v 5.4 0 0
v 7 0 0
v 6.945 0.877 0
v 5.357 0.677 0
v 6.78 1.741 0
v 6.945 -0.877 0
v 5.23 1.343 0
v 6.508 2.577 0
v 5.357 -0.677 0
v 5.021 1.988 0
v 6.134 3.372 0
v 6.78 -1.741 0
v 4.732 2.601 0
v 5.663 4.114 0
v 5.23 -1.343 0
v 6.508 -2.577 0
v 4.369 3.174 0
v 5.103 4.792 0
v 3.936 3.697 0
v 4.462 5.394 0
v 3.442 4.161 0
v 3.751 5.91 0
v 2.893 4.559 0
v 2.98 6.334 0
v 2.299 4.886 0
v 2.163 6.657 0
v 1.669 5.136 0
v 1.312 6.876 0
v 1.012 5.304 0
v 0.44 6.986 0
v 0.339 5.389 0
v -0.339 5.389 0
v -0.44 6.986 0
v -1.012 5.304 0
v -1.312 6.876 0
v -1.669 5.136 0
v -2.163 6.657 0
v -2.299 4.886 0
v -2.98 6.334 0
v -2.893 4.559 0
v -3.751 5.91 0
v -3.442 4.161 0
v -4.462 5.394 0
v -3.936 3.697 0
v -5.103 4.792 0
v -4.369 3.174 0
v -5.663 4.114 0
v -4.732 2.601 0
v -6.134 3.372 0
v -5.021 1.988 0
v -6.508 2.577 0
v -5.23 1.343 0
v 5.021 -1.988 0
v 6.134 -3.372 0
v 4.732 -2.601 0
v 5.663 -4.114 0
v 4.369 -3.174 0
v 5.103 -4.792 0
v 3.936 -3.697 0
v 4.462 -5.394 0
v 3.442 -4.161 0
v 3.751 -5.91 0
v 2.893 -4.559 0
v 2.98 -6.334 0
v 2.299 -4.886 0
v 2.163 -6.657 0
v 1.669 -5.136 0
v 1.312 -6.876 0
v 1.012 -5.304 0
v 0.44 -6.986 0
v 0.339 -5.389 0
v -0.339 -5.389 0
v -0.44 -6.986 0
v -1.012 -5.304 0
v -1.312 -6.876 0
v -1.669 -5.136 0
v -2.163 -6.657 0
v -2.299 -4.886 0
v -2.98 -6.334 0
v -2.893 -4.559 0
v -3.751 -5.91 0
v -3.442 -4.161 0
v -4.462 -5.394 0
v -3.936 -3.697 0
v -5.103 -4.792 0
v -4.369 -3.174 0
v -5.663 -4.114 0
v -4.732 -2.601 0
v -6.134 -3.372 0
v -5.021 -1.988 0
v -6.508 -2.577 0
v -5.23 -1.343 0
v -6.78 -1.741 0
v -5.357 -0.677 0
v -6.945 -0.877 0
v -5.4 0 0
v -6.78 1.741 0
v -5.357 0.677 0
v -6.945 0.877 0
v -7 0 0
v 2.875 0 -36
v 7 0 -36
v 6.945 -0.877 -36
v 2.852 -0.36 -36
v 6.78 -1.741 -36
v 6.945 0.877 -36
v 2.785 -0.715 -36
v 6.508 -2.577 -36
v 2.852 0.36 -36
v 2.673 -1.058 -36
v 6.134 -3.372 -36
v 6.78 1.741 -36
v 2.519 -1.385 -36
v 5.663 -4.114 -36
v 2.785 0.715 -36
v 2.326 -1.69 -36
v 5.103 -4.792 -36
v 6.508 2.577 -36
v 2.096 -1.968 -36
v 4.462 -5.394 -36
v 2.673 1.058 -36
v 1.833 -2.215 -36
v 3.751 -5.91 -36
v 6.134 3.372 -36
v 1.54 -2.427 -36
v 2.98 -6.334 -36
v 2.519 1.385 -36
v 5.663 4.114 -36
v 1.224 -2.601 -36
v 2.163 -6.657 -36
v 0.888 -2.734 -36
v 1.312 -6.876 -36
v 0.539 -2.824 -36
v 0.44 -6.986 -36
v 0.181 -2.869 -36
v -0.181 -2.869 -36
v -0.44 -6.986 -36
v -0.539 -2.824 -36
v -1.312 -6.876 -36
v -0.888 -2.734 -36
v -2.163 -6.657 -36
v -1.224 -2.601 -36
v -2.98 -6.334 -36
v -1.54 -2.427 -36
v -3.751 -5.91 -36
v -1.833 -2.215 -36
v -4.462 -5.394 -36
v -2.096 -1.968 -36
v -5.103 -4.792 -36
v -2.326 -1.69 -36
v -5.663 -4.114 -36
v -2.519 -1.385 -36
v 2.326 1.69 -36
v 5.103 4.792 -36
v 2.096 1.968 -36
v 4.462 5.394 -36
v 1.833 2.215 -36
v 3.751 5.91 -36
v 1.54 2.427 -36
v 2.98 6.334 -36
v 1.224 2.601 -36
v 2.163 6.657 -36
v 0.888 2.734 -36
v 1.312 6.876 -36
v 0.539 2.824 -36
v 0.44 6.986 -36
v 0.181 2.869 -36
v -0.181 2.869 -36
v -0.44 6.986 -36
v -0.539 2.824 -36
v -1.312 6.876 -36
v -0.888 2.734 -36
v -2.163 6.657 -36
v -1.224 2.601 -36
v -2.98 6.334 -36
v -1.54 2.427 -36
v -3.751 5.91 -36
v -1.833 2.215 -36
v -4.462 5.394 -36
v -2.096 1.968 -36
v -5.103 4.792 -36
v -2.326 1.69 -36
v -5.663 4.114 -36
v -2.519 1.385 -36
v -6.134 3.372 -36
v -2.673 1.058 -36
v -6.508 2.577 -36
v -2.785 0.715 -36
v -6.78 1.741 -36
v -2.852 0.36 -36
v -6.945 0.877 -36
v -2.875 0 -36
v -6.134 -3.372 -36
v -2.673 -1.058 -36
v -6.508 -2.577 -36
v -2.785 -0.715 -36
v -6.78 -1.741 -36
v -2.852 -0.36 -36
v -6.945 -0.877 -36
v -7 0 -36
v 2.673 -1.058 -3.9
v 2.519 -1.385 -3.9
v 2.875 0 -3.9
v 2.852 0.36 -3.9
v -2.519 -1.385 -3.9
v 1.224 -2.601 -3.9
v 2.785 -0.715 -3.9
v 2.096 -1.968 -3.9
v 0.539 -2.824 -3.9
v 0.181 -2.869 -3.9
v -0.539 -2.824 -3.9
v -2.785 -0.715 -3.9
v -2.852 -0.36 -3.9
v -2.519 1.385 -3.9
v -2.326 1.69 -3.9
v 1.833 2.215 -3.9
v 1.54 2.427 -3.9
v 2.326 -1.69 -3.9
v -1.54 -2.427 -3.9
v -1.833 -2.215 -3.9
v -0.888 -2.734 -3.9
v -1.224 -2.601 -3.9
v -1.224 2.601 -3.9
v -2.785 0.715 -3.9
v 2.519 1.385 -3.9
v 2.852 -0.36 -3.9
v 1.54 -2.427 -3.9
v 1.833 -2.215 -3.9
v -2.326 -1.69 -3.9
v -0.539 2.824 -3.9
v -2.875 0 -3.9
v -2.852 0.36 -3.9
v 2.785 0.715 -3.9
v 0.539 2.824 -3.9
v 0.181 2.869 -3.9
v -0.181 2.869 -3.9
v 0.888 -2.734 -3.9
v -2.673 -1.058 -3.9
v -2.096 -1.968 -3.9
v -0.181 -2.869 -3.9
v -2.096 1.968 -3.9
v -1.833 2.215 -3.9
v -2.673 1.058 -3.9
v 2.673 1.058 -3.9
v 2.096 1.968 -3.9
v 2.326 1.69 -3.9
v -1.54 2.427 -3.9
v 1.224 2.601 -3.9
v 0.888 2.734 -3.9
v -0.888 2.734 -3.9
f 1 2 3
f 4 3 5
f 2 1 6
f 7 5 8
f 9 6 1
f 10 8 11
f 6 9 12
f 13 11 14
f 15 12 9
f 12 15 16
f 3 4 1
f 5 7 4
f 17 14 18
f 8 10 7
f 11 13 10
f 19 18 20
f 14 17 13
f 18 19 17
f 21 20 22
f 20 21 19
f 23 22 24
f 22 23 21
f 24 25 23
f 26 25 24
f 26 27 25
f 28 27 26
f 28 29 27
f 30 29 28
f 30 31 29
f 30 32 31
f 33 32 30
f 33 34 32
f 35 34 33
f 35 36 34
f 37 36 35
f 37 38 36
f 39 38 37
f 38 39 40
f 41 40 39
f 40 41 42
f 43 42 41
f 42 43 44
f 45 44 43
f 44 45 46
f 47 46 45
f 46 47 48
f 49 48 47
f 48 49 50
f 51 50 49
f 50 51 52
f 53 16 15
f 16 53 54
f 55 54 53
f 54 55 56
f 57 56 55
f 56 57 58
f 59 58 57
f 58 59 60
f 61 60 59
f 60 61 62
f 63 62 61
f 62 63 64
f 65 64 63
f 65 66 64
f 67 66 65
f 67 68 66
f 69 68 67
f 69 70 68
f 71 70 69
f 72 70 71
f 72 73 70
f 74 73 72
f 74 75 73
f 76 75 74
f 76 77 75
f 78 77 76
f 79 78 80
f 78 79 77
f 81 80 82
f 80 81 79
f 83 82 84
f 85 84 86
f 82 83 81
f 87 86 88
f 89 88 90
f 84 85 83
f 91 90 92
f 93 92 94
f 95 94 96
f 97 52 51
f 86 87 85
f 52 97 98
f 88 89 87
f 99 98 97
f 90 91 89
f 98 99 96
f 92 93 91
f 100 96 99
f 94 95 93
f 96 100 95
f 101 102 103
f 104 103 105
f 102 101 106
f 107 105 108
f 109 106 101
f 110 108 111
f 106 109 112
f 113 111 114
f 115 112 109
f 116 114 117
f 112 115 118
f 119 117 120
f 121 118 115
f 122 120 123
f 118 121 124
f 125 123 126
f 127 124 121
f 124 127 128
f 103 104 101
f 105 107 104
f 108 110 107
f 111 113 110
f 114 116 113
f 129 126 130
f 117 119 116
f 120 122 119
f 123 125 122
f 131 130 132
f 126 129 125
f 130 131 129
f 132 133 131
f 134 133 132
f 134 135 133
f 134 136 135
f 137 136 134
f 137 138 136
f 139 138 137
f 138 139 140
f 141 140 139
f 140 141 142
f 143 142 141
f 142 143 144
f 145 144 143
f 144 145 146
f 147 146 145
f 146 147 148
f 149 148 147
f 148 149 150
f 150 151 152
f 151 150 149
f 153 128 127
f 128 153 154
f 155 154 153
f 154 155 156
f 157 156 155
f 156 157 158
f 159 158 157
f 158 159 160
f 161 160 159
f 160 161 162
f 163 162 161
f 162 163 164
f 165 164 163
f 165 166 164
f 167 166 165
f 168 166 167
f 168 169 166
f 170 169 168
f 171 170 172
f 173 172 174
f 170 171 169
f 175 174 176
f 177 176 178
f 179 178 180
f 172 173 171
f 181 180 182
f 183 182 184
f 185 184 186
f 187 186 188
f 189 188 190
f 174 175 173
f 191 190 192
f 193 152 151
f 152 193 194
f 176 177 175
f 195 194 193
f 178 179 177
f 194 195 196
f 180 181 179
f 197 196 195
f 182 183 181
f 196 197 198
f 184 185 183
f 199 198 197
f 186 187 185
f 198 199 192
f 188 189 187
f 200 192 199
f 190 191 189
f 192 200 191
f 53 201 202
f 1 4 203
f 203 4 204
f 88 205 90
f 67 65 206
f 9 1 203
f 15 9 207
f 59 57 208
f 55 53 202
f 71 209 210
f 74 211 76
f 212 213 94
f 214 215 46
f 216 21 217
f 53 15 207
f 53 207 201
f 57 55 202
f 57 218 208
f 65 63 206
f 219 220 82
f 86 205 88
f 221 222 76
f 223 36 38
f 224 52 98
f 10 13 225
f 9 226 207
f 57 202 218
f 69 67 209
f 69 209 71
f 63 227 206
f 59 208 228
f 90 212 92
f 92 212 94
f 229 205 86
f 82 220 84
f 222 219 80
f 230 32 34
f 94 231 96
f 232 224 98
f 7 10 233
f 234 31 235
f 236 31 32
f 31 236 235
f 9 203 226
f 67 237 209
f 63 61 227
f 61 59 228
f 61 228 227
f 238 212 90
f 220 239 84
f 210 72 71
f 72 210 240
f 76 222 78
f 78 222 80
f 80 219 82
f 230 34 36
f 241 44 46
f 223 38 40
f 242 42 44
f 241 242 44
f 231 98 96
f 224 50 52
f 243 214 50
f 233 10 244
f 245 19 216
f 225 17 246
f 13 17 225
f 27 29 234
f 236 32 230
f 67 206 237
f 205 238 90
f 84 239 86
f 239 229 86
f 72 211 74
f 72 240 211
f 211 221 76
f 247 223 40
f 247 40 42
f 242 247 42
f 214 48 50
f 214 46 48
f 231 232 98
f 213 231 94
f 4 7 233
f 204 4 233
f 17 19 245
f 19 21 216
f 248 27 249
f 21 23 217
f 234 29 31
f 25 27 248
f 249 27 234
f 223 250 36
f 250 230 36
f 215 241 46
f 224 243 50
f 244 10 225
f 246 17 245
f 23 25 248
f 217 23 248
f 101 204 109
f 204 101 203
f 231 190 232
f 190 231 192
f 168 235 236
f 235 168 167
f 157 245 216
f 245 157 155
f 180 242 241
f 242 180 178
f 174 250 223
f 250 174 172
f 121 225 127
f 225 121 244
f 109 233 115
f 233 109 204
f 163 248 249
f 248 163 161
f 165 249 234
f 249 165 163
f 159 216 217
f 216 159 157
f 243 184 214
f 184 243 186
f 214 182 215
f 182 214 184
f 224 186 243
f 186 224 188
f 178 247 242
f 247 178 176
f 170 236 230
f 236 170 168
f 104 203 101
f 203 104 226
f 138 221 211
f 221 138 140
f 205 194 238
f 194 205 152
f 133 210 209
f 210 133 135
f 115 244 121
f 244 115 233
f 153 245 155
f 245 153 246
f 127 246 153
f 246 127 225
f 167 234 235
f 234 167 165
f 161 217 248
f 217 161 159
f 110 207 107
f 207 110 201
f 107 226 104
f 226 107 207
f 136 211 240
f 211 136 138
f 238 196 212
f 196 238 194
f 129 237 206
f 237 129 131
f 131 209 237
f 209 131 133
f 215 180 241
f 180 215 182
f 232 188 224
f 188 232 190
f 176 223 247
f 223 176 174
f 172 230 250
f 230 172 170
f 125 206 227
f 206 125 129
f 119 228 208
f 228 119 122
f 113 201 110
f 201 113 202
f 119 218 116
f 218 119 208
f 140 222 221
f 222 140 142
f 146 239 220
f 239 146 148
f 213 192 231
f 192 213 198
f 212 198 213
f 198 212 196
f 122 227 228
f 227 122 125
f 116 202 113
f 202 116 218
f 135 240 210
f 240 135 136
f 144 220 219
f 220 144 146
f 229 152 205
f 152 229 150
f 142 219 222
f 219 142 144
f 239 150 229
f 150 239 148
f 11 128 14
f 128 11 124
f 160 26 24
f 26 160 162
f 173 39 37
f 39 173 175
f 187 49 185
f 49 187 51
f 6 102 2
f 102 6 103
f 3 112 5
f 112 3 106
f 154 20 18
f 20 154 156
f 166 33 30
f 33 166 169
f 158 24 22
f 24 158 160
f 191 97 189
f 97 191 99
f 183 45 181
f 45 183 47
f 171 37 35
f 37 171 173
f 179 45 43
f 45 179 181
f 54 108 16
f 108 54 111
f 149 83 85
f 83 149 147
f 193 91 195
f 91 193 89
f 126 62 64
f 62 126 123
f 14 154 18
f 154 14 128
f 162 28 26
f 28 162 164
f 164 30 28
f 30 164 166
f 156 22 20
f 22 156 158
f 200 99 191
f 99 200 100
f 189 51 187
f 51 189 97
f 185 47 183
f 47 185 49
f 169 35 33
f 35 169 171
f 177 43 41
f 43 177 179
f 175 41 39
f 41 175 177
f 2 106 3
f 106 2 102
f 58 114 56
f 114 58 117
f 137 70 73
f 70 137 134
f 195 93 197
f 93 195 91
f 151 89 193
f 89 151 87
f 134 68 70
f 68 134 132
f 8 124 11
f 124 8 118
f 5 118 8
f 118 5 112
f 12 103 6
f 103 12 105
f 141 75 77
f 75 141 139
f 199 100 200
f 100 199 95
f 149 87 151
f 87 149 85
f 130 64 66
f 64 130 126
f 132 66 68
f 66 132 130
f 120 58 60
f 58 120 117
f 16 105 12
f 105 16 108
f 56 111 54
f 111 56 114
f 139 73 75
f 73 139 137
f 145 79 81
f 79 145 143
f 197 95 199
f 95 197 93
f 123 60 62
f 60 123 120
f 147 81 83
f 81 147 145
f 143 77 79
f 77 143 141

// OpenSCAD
$fn = 50;


difference() {
	union() {
		translate(v = [0, 0, -36.0000000000]) {
			cylinder(h = 36, r = 7.0000000000);
		}
		cylinder(h = 0, r = 16.0000000000);
	}
	union() {
		translate(v = [0, 0, 0]) {
			rotate(a = [0, 0, 0]) {
				difference() {
					union() {
						#translate(v = [0, 0, -36.0000000000]) {
							cylinder(h = 36, r = 2.6000000000);
						}
						#translate(v = [0, 0, -3.9000000000]) {
							cylinder(h = 3.9000000000, r = 7.0000000000, r1 = 2.8750000000, r2 = 5.4000000000);
						}
						#translate(v = [0, 0, -36.0000000000]) {
							cylinder(h = 36, r = 2.8750000000);
						}
						#translate(v = [0, 0, -36.0000000000]) {
							cylinder(h = 36, r = 2.6000000000);
						}
					}
					union();
				}
			}
		}
	}
}
